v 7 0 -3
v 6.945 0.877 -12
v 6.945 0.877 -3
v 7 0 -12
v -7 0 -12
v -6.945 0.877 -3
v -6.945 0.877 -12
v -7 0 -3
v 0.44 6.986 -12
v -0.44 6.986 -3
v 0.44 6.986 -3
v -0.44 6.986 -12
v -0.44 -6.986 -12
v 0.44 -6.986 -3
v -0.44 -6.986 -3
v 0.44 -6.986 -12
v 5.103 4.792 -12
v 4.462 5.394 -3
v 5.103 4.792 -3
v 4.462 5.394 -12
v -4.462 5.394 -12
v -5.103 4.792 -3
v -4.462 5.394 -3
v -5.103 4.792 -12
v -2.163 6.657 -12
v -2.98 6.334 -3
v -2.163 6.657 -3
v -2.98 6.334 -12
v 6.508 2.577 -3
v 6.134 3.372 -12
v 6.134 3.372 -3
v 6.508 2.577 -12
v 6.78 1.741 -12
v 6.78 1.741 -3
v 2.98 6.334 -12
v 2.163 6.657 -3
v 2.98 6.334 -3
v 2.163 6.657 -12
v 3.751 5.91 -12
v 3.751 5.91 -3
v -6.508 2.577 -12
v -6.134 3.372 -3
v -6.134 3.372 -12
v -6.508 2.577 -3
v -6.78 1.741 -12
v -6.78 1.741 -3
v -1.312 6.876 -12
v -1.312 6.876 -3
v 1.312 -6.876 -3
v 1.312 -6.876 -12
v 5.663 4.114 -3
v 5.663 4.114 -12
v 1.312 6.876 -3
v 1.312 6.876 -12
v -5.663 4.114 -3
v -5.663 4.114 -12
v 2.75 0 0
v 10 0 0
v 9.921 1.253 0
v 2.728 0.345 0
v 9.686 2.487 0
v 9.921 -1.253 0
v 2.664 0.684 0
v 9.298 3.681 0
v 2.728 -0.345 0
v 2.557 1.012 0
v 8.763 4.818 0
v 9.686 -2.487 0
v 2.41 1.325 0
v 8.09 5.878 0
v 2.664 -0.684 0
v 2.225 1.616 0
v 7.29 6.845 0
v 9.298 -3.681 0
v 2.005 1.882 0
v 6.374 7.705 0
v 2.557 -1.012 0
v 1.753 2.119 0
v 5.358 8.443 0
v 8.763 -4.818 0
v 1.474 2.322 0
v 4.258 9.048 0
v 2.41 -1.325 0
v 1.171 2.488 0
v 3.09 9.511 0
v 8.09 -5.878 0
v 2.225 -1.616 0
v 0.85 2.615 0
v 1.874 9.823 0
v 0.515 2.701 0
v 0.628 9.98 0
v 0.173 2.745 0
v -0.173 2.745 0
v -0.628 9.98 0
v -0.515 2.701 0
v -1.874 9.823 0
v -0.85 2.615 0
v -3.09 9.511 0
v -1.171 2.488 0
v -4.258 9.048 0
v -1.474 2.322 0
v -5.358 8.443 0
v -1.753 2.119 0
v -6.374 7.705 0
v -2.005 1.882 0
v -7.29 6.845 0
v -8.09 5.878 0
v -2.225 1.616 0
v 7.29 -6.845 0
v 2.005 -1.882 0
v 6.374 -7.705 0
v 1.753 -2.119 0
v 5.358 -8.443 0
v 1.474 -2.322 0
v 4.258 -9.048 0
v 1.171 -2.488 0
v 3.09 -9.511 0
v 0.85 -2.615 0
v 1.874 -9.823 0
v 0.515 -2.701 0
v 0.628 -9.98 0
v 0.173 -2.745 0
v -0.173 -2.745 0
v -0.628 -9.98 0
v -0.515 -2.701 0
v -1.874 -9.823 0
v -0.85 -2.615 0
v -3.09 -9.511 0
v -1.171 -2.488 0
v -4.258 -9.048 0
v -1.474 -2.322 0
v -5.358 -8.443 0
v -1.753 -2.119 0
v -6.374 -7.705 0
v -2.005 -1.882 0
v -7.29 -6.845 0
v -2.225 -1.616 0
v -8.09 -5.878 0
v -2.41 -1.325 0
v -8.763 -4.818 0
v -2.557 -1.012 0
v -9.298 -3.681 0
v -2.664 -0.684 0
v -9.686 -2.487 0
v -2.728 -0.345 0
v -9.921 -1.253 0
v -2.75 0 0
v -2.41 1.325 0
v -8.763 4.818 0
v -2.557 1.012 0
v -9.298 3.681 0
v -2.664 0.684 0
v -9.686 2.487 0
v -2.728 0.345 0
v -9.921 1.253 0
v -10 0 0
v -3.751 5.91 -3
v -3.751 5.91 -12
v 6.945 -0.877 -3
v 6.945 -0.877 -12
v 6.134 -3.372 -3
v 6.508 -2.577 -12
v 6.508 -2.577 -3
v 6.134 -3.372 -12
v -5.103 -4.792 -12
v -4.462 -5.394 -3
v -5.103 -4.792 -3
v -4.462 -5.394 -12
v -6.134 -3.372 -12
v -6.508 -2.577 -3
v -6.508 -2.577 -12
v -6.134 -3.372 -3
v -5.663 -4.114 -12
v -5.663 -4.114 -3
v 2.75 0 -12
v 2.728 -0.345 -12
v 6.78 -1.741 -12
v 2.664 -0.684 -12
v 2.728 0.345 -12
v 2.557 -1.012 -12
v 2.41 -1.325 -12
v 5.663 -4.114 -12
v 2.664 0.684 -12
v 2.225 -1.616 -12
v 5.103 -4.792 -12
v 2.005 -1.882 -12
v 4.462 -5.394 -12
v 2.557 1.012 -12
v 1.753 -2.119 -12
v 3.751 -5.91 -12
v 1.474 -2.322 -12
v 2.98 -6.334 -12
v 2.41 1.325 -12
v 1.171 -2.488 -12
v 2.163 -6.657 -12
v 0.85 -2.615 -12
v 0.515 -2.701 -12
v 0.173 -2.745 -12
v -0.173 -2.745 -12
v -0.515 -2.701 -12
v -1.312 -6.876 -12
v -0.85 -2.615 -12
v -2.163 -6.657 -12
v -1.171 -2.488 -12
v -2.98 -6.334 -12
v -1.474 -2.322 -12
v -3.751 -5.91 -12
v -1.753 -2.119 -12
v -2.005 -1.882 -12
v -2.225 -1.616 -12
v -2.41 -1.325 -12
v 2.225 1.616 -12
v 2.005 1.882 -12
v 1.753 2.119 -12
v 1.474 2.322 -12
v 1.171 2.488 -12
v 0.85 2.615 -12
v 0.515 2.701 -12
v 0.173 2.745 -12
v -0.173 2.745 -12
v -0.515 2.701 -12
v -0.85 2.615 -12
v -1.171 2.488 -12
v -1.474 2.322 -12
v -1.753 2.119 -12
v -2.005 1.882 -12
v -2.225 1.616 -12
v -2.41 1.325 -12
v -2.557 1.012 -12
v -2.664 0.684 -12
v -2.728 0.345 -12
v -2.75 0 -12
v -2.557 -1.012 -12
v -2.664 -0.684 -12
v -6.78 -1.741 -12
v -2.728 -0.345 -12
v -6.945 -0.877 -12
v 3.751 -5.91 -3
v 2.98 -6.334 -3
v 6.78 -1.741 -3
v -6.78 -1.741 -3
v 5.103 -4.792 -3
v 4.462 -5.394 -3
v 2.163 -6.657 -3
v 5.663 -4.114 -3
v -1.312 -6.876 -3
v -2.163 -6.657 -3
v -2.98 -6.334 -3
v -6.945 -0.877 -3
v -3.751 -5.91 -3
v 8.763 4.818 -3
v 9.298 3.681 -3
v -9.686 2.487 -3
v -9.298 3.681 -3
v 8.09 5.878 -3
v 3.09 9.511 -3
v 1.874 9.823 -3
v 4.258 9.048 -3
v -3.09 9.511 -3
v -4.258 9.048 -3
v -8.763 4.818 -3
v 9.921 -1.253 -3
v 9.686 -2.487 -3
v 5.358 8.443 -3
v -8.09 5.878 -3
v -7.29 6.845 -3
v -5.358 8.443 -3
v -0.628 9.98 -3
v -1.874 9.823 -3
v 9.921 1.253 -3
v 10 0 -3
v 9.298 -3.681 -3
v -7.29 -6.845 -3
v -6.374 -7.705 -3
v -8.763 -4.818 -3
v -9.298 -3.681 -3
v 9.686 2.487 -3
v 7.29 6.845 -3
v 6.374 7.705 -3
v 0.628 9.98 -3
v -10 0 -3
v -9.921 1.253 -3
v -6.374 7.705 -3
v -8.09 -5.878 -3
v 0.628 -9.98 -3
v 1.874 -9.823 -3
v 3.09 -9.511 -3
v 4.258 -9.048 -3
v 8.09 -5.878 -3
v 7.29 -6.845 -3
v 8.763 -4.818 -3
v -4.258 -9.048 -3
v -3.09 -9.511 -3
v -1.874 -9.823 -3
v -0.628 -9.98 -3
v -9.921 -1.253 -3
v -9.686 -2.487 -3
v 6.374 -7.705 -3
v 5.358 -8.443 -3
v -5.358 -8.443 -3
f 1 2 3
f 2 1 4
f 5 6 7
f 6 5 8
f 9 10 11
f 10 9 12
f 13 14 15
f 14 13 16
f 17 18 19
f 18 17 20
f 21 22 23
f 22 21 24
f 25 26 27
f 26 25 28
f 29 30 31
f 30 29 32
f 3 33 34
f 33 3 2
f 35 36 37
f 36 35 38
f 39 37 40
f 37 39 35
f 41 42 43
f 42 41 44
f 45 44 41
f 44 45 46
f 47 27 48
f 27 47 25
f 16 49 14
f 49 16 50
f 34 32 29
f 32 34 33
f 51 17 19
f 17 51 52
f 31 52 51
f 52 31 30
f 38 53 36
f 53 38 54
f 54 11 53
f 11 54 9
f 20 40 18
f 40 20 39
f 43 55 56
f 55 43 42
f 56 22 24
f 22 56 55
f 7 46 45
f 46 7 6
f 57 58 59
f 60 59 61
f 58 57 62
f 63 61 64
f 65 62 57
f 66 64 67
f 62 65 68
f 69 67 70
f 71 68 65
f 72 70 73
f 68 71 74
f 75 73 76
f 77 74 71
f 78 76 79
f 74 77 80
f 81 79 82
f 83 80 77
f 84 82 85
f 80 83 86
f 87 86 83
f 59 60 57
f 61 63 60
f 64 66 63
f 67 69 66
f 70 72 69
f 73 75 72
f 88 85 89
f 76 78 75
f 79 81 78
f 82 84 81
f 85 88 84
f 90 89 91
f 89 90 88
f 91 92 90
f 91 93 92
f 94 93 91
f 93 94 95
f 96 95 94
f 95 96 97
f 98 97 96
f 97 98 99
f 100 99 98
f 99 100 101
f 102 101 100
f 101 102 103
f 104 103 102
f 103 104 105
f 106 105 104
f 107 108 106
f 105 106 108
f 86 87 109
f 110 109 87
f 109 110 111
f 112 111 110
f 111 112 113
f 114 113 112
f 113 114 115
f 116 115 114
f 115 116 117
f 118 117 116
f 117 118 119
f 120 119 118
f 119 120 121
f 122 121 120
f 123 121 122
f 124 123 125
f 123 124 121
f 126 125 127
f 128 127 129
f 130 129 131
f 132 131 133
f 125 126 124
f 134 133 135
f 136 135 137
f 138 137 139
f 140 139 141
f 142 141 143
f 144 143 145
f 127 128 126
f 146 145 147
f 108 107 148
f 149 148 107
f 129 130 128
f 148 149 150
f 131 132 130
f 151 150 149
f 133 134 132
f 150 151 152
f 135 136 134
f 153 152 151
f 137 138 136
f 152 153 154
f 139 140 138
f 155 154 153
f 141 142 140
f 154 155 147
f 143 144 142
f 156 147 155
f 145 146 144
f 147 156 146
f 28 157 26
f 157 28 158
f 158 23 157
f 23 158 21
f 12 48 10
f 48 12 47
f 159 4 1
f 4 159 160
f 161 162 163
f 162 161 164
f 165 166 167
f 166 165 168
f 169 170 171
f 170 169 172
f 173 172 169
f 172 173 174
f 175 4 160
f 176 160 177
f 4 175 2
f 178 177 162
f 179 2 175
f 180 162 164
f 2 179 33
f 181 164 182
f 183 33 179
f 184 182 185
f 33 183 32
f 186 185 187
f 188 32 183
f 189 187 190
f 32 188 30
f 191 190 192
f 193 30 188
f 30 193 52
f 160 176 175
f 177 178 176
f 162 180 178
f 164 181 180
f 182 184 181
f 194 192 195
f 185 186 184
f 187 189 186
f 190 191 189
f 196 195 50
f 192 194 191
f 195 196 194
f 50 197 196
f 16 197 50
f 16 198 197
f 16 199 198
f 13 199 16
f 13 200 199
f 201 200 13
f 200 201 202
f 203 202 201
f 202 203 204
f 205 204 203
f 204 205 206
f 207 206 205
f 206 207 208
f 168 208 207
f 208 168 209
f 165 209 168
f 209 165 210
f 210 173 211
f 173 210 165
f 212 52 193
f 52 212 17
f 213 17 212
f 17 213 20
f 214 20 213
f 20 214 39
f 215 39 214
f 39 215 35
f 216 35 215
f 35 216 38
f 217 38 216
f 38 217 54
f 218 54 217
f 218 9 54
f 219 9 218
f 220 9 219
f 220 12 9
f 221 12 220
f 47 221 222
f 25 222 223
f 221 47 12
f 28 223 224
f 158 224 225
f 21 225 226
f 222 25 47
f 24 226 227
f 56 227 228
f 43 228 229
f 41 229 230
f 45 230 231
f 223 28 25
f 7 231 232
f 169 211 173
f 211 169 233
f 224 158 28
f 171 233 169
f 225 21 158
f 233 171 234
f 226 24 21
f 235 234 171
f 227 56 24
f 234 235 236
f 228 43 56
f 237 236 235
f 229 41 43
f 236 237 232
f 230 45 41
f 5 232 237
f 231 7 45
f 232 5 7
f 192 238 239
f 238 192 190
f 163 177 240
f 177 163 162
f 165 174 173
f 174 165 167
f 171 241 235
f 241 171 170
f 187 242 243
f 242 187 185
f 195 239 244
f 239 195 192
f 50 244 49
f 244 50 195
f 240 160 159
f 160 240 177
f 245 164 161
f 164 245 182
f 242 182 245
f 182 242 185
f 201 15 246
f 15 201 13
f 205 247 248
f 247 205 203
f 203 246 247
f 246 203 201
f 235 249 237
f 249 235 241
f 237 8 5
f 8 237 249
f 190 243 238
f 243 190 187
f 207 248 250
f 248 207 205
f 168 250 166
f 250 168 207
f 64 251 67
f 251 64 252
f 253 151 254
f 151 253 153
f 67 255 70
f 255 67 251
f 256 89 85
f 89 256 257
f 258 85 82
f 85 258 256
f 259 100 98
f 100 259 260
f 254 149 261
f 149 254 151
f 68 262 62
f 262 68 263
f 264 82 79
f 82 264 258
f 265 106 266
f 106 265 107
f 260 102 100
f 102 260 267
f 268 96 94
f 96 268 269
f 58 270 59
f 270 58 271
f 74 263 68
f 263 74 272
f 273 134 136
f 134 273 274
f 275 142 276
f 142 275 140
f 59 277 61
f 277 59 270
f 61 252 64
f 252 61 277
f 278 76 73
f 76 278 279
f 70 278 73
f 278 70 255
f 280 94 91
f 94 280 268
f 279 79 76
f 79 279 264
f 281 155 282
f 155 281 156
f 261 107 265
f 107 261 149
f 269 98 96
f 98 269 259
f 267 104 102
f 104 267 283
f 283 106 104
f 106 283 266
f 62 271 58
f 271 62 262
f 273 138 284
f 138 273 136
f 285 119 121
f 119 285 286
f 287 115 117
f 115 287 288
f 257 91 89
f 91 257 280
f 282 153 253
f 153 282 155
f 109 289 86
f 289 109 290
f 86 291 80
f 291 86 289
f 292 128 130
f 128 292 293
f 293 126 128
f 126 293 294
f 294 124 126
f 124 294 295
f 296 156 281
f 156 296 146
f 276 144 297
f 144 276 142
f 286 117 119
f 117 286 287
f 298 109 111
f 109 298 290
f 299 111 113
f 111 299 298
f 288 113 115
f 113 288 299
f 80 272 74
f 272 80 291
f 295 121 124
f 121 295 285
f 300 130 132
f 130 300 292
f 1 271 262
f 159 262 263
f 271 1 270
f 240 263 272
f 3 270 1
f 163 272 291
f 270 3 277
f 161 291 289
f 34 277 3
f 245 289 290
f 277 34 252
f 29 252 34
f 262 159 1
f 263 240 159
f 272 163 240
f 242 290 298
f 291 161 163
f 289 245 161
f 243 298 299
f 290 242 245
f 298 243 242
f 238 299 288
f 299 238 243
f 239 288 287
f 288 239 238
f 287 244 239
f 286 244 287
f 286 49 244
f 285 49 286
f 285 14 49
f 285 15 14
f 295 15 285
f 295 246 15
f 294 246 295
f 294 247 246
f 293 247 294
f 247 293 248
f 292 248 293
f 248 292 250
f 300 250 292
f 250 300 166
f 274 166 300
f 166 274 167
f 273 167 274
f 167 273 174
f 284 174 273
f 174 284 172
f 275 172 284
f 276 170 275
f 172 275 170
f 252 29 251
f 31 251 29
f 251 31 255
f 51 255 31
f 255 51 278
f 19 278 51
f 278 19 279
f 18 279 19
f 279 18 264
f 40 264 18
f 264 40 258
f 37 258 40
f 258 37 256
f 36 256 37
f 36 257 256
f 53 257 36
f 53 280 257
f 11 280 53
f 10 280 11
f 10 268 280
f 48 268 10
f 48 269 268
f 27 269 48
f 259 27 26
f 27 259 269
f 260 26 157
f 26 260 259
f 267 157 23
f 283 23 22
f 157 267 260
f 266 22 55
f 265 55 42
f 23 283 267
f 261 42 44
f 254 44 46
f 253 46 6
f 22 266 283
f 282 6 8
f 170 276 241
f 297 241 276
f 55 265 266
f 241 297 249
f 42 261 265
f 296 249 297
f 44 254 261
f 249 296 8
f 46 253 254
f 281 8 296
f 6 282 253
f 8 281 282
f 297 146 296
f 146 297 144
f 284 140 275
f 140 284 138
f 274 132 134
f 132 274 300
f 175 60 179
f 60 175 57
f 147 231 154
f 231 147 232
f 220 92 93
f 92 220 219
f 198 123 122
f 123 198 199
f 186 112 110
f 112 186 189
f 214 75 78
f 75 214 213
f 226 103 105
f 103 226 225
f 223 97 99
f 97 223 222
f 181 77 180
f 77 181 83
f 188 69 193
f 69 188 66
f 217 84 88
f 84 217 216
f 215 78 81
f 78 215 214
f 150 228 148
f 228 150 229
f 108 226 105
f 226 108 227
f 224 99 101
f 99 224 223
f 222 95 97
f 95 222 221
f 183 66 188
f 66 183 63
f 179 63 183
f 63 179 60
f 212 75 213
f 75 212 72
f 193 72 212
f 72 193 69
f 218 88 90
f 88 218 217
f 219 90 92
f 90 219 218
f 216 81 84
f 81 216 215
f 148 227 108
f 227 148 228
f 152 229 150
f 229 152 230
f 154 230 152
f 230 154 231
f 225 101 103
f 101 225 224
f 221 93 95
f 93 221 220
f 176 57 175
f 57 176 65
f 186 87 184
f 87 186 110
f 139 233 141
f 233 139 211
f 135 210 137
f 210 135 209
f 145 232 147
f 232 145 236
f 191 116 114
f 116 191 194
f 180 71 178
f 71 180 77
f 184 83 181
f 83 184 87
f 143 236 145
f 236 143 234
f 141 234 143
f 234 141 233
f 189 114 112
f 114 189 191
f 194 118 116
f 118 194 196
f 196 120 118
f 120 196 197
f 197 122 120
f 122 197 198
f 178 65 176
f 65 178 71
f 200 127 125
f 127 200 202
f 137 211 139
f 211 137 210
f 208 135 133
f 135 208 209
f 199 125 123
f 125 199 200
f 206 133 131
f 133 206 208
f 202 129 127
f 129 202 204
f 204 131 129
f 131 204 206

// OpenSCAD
$fn = 50;


difference() {
	union() {
		translate(v = [0, 0, -12.0000000000]) {
			cylinder(h = 12, r = 7.0000000000);
		}
		translate(v = [0, 0, -3.0000000000]) {
			cylinder(h = 3, r = 10.0000000000);
		}
	}
	union() {
		#translate(v = [0, 0, -12]) {
			cylinder(h = 12, r = 2.7500000000);
		}
	}
}
